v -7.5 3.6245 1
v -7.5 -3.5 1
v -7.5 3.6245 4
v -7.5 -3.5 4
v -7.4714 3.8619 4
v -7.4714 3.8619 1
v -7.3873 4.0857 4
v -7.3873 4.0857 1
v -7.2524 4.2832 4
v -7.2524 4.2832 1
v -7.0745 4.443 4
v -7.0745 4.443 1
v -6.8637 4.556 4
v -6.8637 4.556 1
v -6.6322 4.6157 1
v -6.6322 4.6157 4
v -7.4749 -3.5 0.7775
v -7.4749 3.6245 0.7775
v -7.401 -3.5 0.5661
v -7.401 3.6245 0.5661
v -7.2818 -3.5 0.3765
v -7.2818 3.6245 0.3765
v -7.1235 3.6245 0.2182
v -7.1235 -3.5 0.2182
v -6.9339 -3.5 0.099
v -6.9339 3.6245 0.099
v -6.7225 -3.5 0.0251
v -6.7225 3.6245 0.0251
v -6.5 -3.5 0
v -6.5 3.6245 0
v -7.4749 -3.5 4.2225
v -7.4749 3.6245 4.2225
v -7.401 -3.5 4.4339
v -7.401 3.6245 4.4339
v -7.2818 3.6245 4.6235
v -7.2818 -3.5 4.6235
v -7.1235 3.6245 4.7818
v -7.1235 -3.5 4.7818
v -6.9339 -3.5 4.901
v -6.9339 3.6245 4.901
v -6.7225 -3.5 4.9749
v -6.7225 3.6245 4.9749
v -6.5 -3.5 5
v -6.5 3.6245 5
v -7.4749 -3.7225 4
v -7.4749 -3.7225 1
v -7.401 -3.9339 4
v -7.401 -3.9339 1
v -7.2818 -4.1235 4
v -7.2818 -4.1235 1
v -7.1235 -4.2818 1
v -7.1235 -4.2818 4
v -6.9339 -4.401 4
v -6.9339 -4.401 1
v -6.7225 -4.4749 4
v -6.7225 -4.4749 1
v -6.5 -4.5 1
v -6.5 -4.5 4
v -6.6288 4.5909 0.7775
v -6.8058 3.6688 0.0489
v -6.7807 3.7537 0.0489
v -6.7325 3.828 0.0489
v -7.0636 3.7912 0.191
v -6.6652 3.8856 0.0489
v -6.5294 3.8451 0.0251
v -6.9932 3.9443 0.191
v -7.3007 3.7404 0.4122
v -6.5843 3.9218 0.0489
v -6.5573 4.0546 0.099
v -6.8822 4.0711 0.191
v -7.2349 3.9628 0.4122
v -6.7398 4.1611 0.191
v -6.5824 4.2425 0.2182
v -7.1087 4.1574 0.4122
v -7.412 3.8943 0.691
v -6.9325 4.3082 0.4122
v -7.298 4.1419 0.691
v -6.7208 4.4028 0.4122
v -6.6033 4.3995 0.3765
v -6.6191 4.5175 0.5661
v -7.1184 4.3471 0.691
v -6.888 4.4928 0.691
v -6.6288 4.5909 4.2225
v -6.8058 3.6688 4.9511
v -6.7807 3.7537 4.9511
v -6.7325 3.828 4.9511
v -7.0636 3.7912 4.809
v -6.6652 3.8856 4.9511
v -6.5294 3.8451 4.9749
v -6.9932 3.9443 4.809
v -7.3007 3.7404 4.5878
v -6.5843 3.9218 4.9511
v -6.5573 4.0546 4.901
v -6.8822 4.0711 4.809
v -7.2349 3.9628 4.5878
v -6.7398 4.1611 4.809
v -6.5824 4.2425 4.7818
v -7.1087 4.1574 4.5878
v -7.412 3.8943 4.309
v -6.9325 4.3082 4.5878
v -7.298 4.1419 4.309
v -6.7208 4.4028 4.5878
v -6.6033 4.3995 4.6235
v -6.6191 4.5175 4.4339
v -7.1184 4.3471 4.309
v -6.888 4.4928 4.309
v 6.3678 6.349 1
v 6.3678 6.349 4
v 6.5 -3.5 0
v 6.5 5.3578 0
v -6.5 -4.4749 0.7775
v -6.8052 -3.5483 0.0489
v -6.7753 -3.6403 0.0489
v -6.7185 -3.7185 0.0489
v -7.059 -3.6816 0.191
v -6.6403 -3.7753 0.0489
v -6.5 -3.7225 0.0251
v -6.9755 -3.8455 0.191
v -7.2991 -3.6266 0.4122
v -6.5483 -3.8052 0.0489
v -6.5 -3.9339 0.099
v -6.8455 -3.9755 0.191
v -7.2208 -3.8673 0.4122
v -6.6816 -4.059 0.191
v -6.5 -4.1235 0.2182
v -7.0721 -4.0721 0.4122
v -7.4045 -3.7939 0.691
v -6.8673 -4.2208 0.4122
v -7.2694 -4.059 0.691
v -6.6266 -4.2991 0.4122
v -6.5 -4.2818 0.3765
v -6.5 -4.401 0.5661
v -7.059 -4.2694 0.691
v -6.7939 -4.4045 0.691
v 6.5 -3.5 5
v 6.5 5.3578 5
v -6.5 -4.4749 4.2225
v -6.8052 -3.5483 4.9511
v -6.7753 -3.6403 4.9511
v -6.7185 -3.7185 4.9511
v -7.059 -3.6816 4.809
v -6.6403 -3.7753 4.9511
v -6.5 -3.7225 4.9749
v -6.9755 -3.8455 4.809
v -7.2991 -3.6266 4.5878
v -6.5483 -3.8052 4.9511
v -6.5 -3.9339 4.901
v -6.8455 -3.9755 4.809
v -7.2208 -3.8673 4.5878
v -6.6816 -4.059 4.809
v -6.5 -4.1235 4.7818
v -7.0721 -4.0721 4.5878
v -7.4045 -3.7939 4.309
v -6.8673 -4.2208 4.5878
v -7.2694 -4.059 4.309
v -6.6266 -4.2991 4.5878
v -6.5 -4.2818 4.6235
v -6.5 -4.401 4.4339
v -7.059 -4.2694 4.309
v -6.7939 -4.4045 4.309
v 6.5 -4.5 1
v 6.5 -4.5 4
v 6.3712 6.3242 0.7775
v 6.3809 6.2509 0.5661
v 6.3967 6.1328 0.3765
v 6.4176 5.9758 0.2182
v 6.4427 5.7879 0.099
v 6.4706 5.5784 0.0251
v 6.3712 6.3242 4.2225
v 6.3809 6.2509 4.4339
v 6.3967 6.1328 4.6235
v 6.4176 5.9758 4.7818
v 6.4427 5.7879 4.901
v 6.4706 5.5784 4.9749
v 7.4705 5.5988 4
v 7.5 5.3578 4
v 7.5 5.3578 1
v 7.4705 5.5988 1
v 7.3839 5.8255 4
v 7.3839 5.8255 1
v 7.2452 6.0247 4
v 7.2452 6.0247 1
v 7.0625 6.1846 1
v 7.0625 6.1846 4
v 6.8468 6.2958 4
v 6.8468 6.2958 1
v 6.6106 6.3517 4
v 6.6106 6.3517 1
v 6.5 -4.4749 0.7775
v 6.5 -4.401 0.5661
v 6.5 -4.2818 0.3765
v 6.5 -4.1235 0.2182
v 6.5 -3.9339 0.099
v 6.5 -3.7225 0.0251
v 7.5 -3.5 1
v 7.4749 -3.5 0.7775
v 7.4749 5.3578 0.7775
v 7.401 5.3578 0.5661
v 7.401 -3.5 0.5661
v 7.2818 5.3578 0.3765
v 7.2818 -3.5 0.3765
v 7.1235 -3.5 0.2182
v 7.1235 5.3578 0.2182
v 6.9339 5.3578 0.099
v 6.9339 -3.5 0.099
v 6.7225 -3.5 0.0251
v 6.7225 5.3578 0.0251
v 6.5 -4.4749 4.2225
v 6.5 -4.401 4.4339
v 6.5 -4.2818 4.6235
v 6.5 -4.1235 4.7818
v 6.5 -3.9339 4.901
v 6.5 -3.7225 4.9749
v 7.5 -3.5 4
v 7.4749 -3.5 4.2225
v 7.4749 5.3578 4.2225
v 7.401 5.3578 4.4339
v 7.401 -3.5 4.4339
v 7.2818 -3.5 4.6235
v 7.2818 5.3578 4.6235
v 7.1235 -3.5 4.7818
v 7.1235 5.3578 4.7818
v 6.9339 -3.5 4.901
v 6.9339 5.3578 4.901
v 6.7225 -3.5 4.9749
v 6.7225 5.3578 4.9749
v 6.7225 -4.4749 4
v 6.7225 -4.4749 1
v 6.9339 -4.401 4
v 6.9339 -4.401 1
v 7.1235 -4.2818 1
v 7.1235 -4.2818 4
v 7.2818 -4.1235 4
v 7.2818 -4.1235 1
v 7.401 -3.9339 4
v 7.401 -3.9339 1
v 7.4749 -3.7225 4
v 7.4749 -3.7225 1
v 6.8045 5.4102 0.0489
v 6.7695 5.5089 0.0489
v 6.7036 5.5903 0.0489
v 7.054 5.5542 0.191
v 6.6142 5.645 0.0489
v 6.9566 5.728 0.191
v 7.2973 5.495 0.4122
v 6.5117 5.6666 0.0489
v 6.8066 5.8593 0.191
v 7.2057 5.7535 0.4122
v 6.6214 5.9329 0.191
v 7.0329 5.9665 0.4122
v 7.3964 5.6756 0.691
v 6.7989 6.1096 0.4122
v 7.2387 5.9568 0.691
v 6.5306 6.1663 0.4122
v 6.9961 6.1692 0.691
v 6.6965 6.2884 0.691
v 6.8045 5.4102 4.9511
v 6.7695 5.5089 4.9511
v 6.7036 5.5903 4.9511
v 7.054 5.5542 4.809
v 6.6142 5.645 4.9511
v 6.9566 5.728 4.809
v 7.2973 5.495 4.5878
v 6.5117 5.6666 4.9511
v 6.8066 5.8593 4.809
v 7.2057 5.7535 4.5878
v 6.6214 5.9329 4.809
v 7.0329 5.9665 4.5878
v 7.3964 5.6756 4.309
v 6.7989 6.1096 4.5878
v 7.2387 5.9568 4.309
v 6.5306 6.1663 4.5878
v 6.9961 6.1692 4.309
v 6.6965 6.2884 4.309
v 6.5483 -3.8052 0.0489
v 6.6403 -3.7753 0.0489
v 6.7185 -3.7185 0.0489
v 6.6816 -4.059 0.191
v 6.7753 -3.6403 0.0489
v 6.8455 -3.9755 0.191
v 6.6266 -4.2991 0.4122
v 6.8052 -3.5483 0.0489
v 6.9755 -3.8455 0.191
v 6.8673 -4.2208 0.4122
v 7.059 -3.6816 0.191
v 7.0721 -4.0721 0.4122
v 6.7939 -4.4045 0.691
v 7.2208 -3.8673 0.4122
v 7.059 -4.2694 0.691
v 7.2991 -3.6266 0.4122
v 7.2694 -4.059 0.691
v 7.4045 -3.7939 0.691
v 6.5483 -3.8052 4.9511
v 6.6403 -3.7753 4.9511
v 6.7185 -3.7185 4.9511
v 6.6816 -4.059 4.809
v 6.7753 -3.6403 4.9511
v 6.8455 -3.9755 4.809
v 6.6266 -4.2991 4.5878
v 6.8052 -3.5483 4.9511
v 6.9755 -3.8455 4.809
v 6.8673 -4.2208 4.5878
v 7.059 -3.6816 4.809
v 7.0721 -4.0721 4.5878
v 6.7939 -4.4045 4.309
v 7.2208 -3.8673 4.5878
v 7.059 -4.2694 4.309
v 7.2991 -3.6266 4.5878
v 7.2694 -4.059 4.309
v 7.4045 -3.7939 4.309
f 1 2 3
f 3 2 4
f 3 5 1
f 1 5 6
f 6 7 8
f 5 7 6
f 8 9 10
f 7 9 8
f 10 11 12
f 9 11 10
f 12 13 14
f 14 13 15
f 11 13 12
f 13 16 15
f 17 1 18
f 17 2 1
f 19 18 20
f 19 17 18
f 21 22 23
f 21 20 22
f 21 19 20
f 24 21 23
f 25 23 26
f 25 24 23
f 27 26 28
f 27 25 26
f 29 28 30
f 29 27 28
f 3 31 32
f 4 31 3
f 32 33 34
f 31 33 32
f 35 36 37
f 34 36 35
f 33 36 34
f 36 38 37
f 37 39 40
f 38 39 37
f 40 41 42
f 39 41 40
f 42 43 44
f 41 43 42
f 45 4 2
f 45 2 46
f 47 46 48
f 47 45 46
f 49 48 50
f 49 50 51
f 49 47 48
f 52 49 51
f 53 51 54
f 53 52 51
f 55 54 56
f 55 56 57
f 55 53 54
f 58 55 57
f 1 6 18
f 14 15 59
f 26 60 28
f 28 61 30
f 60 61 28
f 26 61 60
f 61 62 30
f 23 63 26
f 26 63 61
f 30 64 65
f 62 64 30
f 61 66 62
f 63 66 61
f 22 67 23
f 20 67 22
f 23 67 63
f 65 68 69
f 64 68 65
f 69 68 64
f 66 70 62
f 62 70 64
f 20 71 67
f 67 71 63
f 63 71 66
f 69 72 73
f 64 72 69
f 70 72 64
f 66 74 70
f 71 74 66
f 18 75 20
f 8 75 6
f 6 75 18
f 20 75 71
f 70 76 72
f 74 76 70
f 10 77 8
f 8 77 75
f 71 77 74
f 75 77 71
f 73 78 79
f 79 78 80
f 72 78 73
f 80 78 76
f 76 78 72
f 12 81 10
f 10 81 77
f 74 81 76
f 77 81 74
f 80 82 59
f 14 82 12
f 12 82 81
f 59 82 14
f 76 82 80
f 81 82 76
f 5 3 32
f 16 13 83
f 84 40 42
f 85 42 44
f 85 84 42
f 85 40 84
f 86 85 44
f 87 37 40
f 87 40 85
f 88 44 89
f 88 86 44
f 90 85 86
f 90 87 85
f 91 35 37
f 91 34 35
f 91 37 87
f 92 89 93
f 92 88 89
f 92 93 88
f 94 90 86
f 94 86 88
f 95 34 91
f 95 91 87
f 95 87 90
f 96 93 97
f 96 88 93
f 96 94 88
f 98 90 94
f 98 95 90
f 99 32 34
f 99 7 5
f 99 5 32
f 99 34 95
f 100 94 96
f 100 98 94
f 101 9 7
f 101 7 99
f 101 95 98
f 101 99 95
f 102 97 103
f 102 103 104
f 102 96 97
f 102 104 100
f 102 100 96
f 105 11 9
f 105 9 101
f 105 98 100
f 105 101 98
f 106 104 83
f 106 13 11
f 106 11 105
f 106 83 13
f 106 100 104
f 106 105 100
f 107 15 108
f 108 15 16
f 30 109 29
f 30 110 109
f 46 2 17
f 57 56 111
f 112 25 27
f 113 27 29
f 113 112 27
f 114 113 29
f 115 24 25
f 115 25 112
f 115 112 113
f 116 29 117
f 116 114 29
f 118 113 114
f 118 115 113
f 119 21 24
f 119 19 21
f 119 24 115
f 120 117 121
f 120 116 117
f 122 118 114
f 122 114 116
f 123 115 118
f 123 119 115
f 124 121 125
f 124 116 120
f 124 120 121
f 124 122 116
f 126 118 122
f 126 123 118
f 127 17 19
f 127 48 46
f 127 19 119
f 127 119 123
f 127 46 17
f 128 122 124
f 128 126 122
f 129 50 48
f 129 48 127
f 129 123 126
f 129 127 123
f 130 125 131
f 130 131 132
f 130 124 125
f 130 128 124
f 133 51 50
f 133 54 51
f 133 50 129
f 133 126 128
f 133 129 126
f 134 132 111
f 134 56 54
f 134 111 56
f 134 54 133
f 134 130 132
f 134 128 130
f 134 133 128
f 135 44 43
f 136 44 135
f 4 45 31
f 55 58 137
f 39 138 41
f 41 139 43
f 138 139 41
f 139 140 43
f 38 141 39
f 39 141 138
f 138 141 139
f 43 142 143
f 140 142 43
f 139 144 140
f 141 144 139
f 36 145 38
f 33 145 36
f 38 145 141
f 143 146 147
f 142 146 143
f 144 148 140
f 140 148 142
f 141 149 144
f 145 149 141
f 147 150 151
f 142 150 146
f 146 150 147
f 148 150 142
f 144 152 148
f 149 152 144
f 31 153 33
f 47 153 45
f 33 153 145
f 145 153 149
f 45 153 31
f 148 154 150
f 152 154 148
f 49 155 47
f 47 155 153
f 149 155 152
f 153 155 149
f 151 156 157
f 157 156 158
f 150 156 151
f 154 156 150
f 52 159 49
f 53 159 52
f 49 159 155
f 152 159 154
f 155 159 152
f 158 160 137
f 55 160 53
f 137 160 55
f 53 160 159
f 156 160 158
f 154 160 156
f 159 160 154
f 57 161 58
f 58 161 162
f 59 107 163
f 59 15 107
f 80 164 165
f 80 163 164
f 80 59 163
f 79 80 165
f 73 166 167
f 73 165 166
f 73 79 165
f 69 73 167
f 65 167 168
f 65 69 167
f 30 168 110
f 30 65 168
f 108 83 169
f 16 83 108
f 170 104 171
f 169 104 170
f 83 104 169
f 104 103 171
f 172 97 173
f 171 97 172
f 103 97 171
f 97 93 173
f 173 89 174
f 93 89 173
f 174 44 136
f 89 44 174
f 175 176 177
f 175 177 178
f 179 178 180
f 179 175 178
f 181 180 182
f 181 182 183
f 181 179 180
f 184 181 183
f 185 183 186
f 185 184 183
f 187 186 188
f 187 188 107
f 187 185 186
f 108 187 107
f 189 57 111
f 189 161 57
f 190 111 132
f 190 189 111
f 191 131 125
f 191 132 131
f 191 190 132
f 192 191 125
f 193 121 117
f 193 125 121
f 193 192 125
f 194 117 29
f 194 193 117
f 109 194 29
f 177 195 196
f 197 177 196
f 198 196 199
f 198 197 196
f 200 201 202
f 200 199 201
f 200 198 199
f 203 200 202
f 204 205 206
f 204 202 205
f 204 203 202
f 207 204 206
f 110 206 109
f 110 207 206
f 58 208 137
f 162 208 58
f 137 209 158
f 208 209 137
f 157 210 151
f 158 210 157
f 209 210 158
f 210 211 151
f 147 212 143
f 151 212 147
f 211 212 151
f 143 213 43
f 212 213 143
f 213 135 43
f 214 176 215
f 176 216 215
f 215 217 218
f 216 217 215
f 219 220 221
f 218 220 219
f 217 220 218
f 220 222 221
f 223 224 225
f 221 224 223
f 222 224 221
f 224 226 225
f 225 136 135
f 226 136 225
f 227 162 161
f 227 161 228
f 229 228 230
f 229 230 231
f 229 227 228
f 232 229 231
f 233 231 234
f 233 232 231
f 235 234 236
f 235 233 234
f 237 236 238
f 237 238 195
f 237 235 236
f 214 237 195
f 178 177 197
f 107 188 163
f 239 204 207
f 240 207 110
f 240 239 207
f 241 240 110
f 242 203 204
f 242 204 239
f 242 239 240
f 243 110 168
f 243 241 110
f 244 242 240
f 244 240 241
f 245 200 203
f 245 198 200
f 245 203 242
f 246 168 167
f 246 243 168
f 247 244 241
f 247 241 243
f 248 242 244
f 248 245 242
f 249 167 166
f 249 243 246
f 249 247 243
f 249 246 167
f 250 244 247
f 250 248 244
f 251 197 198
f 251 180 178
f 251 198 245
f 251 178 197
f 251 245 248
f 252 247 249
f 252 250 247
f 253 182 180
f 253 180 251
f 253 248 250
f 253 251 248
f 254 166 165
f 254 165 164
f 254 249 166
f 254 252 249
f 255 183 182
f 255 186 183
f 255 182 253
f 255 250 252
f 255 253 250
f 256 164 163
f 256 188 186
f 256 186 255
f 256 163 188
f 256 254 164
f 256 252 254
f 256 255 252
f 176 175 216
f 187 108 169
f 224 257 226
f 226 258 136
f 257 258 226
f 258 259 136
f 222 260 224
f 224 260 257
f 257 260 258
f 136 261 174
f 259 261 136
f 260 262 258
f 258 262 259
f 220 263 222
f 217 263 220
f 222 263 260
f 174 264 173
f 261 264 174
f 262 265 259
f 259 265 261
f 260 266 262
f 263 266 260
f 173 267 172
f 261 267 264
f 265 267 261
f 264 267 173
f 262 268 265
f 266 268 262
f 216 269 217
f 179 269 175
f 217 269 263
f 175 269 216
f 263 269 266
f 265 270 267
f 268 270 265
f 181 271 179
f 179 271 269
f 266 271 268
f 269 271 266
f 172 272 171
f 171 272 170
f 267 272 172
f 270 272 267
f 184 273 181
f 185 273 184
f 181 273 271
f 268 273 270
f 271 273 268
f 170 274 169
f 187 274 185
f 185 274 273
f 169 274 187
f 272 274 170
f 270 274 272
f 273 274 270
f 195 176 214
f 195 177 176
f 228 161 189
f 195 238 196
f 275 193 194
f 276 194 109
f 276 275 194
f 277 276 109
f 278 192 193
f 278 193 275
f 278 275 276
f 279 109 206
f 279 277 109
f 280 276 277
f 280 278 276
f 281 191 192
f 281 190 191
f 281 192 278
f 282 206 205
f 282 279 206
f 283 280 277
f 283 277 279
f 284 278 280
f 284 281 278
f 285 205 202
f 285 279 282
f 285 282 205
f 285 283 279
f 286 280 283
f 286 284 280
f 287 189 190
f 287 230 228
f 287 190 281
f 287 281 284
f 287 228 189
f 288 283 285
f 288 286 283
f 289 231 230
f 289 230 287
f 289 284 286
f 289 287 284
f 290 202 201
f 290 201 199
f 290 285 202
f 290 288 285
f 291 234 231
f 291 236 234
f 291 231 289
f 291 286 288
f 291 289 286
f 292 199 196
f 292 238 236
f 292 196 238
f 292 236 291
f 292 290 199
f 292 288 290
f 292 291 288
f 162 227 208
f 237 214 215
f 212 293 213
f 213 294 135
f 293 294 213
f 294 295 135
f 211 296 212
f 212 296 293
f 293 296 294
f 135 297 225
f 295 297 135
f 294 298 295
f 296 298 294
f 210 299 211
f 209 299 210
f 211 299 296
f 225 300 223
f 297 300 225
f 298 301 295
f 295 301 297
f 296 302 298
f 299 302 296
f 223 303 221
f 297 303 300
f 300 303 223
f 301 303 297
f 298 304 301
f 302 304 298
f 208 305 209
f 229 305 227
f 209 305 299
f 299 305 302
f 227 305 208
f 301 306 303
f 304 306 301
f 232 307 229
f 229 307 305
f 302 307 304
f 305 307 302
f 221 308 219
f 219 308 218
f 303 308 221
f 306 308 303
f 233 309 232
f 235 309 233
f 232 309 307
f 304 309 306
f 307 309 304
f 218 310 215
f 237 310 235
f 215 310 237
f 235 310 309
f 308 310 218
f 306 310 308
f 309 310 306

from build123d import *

# Parameters (mm, degrees)
EXTRUDE_DEPTH = 5
FILLET_R      = 1


with BuildPart() as part:
    # Sketch → Extrude (new body)
    with BuildSketch(Plane.XY):
        Polygon((-7.5, 4.5), (-7.5, -4.5), (7.5, -4.5), (7.5, 6.5), align=None)
    extrude(amount=EXTRUDE_DEPTH)

    # Fillet
    fillet_edges = [part.edges().sort_by_distance(p)[0] for p in [
        (-7.5, 4.5, 2.5),
        (-7.5, -4.5, 2.5),
        (-7.5, 0, 0),
        (-7.5, 0, 5),
        (7.5, -4.5, 2.5),
        (0, -4.5, 0),
        (0, -4.5, 5),
        (7.5, 6.5, 2.5),
        (7.5, 1, 0),
        (7.5, 1, 5),
        (0, 5.5, 0),
        (0, 5.5, 5),
    ]]
    fillet(fillet_edges, radius=FILLET_R)


solid = part.part
